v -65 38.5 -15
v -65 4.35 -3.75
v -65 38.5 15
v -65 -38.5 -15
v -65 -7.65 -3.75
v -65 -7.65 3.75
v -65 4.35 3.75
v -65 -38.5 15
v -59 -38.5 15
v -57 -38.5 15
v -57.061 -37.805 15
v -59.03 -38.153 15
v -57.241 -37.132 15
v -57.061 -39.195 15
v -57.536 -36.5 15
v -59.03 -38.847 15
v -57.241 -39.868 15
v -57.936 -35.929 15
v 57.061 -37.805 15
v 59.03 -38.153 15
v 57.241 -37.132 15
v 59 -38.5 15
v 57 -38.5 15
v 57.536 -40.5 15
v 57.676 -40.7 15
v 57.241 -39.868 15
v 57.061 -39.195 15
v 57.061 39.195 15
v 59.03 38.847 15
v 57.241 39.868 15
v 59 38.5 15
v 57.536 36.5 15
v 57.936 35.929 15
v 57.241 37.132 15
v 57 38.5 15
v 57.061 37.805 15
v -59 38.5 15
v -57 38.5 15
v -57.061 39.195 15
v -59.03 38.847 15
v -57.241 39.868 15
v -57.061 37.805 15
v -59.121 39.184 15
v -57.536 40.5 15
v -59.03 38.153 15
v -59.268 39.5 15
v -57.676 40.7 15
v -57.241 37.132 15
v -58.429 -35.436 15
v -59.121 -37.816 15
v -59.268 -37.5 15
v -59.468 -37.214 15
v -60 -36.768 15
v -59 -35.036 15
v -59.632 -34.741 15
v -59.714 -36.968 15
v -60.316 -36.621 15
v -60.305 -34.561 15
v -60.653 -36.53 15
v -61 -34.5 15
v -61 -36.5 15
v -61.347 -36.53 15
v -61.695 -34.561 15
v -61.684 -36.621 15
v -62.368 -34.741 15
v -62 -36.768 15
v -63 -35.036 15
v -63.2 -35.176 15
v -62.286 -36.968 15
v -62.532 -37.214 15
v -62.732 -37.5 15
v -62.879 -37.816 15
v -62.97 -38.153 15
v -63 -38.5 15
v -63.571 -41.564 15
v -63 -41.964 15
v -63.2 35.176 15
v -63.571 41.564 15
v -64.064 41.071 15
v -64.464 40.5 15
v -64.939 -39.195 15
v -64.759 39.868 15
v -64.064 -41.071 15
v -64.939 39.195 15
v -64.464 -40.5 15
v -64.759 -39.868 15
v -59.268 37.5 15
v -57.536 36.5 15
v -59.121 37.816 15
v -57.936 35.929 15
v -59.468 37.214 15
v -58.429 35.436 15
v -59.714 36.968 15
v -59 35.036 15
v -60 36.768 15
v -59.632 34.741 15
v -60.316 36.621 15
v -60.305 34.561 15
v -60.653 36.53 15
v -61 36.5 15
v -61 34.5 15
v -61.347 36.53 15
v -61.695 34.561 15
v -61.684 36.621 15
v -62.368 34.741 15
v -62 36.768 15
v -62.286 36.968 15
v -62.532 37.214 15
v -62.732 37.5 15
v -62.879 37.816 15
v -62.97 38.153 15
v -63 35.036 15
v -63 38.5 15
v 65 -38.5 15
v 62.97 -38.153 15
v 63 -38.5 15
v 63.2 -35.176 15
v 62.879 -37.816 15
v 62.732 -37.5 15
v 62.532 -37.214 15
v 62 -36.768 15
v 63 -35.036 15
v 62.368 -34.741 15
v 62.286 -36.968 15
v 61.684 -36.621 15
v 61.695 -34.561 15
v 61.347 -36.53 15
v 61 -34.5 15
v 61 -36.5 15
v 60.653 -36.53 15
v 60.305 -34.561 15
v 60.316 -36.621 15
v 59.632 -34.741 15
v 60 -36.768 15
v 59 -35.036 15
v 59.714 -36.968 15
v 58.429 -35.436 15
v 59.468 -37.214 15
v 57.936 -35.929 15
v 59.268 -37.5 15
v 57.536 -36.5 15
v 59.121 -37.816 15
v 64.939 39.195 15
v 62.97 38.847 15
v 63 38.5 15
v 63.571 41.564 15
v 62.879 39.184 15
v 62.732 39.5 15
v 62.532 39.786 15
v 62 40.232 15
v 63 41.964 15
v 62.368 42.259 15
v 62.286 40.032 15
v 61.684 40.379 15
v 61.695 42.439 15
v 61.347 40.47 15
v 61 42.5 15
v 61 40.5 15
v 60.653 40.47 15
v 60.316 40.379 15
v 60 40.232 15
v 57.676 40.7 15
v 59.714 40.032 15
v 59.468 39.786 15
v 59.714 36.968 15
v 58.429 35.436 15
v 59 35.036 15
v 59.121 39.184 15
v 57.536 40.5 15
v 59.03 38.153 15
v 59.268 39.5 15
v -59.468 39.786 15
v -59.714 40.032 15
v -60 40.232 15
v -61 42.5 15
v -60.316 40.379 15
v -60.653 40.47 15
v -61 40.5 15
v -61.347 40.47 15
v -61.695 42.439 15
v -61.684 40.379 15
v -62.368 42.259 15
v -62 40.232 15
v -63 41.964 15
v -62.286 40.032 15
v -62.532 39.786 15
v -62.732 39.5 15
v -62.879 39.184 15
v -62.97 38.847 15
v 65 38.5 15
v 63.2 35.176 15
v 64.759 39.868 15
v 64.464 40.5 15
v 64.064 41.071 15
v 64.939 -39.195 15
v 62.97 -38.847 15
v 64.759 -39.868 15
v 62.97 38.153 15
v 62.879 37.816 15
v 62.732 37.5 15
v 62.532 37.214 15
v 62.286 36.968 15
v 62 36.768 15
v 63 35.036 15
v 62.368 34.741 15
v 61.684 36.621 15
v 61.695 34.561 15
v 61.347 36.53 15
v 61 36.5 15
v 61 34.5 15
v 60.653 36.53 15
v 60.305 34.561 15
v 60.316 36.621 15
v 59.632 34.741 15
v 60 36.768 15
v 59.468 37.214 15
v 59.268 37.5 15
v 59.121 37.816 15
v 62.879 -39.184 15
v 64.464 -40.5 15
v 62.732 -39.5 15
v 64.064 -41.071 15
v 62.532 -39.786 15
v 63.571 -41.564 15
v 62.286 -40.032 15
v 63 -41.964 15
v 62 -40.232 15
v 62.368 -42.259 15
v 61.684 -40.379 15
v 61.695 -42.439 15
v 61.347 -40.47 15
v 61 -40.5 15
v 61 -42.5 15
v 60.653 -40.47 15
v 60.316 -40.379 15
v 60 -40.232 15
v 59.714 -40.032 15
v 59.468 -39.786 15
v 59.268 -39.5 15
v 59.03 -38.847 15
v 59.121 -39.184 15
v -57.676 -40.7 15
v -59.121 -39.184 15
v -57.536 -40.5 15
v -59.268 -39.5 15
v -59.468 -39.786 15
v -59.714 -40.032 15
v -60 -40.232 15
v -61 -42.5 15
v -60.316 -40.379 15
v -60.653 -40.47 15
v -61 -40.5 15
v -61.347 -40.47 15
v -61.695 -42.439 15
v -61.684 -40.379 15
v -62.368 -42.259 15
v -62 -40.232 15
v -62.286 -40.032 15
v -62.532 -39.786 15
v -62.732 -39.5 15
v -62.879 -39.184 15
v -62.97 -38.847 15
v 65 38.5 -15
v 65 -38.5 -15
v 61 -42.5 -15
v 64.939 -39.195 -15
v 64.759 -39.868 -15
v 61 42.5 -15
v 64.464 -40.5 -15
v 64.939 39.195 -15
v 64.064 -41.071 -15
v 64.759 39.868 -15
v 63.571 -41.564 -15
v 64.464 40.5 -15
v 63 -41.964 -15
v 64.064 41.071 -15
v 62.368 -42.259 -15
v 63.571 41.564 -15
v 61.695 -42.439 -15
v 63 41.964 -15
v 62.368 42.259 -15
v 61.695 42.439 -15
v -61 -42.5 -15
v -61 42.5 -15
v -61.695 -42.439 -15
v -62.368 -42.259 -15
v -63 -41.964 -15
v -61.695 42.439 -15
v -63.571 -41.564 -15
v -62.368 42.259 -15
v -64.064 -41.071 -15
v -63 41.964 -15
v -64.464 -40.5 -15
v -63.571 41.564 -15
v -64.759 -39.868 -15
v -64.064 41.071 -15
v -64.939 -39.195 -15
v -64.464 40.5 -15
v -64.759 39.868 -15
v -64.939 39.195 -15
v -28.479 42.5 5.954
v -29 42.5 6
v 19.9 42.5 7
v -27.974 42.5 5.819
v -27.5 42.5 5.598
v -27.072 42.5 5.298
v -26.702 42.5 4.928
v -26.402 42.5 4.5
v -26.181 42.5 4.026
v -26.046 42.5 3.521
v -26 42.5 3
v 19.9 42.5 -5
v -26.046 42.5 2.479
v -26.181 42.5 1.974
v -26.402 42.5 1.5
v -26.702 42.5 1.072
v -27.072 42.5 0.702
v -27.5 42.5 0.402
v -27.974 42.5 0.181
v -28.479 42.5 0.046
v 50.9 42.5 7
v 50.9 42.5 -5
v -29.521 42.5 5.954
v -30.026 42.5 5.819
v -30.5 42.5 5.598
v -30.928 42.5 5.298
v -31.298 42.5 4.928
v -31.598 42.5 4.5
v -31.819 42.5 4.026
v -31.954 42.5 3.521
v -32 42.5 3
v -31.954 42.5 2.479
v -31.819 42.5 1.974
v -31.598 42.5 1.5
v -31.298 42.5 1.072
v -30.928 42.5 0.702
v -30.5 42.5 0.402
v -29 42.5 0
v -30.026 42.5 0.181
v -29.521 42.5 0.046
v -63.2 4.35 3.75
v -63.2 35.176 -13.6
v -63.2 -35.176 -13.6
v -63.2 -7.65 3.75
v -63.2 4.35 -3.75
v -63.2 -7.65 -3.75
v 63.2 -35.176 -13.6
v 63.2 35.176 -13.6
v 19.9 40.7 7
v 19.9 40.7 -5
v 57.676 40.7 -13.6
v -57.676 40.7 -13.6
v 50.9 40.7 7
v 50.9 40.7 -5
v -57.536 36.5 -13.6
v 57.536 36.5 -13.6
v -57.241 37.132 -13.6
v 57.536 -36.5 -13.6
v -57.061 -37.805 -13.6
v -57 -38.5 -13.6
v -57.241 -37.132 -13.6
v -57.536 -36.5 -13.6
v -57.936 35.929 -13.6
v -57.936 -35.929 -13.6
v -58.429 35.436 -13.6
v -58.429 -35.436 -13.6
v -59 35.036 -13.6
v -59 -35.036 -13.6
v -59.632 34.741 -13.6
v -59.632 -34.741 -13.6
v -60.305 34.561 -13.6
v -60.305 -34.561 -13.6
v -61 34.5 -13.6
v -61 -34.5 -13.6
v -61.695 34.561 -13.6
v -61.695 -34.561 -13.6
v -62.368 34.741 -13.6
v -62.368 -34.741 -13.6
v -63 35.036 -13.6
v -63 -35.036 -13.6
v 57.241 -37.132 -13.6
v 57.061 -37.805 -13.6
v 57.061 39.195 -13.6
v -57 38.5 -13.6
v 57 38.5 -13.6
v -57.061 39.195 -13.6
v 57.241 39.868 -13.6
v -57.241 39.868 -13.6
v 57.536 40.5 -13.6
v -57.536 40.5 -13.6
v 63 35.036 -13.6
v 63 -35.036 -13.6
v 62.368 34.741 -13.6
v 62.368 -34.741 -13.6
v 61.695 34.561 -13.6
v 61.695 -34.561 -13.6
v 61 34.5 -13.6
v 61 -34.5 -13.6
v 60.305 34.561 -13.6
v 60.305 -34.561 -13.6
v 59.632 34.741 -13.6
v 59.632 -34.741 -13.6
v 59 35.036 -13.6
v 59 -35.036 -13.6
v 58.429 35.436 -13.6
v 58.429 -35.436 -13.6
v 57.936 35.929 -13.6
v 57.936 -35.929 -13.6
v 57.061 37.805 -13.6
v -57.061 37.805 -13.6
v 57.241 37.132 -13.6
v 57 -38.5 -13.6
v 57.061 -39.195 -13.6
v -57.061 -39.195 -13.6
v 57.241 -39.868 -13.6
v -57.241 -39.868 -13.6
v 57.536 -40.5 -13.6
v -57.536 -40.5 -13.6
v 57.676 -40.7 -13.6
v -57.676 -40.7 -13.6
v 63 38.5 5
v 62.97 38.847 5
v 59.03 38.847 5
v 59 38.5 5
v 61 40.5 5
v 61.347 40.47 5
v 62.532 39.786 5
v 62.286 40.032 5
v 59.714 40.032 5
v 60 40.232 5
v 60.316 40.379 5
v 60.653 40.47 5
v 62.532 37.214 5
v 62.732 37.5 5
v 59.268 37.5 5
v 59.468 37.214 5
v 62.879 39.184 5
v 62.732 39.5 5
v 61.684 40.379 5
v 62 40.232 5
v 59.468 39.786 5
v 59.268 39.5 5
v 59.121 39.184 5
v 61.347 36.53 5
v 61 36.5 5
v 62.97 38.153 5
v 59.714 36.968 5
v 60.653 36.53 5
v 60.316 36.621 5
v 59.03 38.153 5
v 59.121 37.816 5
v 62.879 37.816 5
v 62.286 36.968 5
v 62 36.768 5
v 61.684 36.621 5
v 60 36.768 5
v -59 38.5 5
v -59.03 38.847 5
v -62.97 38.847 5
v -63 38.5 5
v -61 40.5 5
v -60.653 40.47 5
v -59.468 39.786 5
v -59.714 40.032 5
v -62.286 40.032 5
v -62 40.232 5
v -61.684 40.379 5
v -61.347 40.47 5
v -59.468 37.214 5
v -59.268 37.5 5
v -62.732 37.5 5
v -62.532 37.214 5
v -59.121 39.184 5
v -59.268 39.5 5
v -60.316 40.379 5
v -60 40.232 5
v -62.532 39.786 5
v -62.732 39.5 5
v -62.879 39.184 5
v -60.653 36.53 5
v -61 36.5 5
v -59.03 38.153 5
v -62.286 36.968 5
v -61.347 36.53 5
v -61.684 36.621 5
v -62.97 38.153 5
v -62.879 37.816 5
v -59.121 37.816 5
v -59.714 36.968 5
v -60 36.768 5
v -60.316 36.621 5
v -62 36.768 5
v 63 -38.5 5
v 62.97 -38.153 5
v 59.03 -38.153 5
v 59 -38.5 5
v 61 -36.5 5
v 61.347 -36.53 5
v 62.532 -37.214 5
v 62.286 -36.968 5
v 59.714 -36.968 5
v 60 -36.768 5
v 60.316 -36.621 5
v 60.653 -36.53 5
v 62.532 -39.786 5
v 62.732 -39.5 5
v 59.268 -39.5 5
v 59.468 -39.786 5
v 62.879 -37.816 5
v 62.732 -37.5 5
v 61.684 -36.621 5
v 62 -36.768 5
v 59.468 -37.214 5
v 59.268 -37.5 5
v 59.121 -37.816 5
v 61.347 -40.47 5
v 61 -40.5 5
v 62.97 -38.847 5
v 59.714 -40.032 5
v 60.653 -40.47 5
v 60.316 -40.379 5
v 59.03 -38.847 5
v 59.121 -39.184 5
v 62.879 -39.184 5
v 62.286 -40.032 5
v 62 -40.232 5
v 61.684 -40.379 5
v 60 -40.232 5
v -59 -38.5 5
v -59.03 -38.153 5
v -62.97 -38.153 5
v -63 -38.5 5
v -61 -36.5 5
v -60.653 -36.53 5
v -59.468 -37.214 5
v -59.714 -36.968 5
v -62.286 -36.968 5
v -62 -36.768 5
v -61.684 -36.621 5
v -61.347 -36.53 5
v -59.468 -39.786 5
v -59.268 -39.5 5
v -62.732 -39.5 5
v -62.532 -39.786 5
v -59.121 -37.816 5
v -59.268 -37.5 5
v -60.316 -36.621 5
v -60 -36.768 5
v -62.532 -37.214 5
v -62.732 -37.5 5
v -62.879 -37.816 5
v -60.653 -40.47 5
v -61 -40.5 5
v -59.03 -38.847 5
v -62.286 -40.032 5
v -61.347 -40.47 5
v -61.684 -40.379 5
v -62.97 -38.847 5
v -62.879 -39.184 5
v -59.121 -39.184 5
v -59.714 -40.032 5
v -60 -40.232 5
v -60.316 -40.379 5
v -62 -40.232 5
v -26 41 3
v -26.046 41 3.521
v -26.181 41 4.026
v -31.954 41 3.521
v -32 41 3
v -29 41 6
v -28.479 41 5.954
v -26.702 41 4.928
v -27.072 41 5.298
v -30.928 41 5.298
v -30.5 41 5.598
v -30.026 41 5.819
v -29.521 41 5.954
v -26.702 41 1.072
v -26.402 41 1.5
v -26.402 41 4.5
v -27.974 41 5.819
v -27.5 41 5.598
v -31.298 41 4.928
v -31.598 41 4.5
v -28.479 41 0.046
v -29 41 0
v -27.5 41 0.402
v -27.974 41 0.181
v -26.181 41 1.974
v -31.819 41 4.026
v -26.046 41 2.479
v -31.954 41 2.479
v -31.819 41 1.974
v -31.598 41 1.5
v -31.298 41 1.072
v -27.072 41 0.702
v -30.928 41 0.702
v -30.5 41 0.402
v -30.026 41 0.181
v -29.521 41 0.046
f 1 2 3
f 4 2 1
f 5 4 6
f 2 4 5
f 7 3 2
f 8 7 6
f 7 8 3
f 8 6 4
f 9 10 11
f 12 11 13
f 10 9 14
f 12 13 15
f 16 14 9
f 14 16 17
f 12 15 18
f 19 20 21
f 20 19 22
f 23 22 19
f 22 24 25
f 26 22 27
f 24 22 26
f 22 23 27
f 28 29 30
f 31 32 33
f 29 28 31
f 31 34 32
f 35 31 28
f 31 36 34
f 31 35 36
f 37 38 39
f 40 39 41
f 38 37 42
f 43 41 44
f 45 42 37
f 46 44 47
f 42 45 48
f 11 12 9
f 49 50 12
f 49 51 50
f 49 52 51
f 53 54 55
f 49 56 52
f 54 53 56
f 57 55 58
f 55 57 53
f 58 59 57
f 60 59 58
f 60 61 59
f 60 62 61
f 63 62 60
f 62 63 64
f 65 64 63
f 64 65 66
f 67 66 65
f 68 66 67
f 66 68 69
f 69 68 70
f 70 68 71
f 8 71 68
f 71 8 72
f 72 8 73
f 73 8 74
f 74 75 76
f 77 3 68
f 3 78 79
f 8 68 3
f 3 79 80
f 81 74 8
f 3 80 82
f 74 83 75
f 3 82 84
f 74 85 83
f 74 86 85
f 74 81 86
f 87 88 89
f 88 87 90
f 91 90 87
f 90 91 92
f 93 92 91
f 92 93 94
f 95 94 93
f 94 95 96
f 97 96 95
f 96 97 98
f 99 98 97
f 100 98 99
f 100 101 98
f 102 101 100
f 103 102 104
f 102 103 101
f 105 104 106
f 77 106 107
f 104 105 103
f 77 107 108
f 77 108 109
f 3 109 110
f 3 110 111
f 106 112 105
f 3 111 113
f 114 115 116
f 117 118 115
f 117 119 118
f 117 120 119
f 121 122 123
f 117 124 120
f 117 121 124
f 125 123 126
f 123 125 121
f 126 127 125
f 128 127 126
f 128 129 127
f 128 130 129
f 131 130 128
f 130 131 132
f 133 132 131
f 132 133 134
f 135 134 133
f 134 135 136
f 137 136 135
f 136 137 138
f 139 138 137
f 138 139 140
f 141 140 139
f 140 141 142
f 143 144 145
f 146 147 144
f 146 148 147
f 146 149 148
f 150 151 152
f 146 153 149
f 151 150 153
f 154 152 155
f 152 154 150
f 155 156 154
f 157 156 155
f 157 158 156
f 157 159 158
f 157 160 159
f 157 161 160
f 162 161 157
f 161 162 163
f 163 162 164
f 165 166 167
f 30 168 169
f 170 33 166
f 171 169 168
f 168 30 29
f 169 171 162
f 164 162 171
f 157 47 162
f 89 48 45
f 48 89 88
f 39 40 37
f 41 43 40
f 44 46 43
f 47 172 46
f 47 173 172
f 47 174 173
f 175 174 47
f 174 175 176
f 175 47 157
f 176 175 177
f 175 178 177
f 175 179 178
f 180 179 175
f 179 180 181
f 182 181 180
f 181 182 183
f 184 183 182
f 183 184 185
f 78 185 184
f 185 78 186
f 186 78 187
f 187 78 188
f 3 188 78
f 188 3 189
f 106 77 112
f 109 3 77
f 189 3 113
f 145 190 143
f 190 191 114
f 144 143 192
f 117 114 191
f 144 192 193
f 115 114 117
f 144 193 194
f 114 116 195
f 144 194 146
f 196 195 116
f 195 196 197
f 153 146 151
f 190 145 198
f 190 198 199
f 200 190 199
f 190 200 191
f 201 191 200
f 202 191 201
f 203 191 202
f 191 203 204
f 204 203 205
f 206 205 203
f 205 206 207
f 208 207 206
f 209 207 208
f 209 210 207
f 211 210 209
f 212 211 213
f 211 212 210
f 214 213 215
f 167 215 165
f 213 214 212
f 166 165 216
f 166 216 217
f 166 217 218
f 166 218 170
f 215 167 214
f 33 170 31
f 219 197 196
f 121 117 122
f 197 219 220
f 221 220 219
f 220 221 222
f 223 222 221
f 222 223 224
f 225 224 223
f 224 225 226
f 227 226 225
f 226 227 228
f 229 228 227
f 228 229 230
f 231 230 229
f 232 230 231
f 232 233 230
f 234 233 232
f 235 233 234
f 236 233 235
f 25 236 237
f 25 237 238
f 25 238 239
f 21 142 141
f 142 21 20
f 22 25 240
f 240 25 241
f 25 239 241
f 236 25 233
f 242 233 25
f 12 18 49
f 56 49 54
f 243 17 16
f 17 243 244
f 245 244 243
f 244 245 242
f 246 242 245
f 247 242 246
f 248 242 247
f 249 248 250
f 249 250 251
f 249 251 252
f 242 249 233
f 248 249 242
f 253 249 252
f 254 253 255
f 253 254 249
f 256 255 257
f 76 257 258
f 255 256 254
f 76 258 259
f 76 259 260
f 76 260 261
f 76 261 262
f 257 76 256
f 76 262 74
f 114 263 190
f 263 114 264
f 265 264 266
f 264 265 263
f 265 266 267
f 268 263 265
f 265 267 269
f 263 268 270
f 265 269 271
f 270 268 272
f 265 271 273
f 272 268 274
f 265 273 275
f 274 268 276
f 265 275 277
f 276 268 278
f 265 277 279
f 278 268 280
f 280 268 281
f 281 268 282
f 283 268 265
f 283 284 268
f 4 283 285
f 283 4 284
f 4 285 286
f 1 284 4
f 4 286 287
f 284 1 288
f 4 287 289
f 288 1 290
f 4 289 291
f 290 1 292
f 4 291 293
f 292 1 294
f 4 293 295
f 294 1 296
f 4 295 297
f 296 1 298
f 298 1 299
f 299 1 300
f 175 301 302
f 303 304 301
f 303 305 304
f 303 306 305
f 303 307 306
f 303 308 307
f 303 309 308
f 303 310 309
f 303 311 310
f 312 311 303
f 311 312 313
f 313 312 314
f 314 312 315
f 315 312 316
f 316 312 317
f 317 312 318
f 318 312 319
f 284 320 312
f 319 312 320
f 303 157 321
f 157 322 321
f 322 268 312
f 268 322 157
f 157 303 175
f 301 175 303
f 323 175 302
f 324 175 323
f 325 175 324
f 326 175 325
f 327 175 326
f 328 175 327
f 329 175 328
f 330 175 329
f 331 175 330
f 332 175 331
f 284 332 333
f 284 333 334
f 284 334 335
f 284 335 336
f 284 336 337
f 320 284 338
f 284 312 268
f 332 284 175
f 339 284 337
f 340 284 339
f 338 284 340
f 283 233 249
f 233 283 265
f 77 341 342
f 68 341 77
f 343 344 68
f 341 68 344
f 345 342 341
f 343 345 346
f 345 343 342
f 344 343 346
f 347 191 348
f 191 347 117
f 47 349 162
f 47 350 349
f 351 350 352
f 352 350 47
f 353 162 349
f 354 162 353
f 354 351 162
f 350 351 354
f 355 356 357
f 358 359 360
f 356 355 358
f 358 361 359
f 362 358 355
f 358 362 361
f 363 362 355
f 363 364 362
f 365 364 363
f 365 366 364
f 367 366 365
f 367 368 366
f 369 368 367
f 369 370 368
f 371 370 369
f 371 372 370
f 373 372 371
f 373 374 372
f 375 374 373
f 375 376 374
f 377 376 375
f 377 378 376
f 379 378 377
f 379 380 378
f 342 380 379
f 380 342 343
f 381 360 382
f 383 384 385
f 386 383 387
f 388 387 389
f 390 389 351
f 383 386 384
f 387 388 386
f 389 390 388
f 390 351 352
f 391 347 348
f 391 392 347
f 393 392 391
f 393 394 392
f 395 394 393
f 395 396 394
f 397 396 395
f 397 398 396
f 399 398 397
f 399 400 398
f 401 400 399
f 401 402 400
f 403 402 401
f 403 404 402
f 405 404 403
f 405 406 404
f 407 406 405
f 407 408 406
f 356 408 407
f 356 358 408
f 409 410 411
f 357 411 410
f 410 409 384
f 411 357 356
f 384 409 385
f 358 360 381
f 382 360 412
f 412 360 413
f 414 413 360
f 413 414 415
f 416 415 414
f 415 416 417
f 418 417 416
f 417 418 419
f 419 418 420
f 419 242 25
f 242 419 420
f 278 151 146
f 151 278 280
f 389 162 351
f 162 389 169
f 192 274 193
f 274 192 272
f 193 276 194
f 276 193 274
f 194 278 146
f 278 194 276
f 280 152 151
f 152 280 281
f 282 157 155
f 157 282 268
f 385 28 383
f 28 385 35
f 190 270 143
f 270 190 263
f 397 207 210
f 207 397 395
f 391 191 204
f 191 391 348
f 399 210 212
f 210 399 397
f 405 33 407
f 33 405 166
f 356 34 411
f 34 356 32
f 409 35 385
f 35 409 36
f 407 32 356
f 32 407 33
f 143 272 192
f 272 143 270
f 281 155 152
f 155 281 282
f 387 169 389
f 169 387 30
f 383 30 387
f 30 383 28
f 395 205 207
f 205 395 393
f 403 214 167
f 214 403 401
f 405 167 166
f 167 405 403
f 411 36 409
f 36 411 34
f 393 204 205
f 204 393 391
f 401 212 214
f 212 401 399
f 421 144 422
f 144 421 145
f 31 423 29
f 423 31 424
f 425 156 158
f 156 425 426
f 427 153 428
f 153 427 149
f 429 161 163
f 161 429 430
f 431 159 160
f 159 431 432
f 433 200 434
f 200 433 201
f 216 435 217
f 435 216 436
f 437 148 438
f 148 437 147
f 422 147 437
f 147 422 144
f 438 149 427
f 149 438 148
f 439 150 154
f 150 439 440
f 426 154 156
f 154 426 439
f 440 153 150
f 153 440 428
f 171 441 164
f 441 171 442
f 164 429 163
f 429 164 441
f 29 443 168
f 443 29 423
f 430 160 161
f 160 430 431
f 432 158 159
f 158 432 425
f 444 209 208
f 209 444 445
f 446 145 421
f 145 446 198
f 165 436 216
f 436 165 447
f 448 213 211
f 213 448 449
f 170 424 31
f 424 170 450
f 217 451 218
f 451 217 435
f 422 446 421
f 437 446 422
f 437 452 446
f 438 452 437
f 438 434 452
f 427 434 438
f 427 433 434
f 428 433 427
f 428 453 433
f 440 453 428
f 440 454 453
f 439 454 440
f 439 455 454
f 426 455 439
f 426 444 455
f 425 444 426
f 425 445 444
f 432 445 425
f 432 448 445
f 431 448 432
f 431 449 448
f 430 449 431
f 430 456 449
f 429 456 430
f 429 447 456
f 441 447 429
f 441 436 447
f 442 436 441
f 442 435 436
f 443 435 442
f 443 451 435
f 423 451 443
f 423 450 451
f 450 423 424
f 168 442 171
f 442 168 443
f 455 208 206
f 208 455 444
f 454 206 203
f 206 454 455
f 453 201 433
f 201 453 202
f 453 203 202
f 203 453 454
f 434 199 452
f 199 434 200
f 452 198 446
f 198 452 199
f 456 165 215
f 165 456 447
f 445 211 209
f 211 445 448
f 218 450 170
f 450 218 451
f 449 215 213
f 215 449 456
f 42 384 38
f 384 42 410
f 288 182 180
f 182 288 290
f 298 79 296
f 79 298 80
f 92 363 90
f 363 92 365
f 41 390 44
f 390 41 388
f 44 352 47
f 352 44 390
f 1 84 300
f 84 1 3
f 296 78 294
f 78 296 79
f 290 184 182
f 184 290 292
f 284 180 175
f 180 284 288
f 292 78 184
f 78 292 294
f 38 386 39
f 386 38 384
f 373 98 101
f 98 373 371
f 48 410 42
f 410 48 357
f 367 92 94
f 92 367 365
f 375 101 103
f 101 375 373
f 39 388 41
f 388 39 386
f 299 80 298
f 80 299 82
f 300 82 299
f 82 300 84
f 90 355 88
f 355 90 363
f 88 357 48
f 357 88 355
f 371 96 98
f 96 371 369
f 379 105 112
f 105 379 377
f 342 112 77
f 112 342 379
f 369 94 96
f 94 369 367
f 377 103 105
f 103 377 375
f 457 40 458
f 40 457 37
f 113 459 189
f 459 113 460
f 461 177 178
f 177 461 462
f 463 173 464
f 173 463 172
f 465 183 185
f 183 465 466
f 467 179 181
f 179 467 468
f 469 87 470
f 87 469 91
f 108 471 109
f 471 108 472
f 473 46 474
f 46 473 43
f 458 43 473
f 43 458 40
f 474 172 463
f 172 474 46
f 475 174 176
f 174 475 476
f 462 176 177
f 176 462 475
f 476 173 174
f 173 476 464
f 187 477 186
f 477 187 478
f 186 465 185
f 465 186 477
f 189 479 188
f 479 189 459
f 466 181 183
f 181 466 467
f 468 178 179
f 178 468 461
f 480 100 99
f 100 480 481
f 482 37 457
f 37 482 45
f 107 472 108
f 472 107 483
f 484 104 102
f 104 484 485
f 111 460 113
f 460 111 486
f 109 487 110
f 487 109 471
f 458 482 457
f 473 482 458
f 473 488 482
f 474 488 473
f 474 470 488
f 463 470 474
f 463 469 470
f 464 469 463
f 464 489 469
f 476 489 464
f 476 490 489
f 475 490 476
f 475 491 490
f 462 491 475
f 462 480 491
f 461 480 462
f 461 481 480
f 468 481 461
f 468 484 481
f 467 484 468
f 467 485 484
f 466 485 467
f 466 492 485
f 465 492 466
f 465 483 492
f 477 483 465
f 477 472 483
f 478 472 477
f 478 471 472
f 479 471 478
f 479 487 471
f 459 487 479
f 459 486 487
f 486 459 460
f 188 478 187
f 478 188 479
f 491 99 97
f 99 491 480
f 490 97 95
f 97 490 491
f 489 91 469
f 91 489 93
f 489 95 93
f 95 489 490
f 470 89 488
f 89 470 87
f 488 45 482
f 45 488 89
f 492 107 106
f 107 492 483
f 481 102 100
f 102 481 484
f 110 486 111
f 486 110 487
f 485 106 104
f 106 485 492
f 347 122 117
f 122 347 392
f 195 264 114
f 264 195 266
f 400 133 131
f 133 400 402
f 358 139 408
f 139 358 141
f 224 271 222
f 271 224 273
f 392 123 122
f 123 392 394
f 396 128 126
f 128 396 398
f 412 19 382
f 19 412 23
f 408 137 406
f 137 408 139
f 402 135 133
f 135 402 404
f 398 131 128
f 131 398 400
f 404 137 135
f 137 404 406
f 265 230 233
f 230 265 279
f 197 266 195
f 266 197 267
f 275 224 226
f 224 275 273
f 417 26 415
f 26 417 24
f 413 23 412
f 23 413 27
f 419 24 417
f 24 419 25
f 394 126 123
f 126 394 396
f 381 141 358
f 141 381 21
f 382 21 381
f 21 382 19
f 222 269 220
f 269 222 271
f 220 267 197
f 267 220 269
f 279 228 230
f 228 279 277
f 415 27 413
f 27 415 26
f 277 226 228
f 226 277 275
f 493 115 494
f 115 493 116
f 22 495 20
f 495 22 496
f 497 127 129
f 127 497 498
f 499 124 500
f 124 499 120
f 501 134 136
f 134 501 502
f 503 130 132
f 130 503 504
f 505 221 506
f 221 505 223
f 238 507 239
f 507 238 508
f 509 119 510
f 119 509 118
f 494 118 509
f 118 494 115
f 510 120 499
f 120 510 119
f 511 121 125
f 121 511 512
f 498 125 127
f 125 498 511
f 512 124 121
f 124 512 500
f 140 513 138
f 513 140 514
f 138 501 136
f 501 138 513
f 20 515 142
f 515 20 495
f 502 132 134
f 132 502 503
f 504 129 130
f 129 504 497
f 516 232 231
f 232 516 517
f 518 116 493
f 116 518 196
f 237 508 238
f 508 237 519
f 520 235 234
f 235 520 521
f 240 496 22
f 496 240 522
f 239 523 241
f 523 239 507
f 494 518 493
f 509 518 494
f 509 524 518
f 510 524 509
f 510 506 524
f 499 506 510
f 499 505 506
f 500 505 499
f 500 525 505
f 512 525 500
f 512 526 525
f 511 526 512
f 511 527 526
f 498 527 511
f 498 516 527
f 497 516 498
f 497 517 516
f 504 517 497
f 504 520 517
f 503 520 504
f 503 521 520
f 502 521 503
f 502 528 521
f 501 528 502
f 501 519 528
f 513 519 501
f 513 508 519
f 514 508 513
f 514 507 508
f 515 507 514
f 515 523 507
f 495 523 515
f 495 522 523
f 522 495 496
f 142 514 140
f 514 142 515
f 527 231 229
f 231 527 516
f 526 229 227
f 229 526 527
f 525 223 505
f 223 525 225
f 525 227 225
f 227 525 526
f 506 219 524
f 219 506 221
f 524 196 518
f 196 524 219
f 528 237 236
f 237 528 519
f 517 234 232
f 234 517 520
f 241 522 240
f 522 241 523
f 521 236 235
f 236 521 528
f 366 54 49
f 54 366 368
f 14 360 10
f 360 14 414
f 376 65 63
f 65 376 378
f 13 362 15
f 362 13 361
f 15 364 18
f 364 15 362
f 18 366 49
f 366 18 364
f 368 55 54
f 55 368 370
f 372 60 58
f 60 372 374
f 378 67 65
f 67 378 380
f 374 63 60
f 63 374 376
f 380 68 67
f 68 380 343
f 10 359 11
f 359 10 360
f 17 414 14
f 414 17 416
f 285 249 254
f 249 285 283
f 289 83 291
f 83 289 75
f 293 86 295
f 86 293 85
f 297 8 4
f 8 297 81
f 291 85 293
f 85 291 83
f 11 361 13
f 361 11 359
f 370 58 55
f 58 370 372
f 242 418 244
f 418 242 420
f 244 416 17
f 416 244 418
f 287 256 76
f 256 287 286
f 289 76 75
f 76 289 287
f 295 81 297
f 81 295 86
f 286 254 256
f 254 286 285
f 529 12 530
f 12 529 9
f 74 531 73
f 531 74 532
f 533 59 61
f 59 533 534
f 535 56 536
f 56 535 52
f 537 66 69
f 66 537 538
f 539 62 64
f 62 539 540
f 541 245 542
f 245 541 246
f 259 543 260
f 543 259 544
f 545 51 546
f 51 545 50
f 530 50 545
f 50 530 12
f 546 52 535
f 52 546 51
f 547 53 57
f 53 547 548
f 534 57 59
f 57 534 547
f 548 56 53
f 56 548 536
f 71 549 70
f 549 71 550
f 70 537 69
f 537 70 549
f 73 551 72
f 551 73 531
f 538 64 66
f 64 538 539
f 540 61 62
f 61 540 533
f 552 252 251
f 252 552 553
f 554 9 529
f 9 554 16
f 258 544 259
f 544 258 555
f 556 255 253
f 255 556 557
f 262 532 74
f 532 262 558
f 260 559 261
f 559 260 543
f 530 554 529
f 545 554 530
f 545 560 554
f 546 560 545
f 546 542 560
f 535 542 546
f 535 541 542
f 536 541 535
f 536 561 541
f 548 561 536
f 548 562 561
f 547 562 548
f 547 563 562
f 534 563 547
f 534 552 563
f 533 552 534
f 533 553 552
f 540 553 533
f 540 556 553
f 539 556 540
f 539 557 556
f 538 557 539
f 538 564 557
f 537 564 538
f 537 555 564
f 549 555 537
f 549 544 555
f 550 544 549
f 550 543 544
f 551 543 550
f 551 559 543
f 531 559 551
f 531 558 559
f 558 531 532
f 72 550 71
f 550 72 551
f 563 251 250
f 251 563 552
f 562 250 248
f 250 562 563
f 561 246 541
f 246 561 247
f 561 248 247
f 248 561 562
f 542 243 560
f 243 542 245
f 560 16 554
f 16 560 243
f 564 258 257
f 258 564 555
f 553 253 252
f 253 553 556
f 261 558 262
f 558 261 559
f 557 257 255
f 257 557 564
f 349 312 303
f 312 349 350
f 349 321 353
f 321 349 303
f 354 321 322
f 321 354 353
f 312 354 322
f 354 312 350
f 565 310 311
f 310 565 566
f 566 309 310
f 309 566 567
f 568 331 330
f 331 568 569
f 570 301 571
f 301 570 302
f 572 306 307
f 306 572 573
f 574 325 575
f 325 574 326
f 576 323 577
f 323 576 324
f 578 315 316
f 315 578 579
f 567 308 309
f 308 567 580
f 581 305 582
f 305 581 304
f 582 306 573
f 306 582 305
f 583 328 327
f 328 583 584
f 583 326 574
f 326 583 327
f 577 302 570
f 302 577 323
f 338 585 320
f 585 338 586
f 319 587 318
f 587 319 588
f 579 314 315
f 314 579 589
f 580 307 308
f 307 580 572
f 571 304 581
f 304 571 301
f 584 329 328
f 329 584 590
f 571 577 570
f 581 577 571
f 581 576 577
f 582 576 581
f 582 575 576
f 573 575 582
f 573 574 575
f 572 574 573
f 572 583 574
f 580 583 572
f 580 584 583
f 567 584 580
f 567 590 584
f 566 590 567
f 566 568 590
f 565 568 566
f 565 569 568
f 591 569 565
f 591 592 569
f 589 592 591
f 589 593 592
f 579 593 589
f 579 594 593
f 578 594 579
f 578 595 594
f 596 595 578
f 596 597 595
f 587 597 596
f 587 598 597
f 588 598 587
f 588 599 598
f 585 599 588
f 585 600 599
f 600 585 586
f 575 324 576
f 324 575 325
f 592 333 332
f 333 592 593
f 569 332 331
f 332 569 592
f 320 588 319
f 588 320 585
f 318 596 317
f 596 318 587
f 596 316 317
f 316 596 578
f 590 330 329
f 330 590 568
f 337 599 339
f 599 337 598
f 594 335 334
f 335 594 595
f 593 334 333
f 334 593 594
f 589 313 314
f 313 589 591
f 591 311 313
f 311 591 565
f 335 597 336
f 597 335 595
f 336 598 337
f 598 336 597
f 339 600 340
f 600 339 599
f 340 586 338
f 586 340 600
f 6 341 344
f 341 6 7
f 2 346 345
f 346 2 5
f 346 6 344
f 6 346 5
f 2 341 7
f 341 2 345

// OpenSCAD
// Definition size of housing
// **************************

       // Those settings have to be identical to the cover !!!
width_x      = 130;          // Width of the housing (outer dimension) 
debth_y      = 85;           // Debth of the housing (outer dimension)
wall         = 1.8;          // Wall thickness of the box
cornerradius = 4.0;          // Radius of the corners
                             //   This value also defines the posts for stability and
                             //   for the press-in nuts!

       // Those settings are more or less independent from the cover
height_z     = 30;           // Heigth of the lower part. Total height is this value plus
                             //   the height of the cover
plate        = 1.4;          // Thickness of the bottom plain

       //Definition size of press-in nuts
nutdiameter  = 4.0;          // Hole diameter for thermal press-in nut
nutlength    = 10;          // Depth of the nut hole


//Definition of circle angular resolution
resol        = 36;



difference () {

// Construction of housing
   union () {
   // Definition of main body
      difference () {
         union () {
            cube ( [width_x, debth_y - (2* cornerradius), height_z], center = true );
            cube ( [width_x - (2* cornerradius), debth_y, height_z], center = true );
         };
         translate ( [0,0, plate / 2] ){
            cube ( [width_x - (2* wall), debth_y- (2* wall), height_z - plate], center = true ); 
         };
      };

      // Construction of four corner cylinders including nut holes
      // 1st quadrant
      translate ( [(width_x / 2) - cornerradius, (debth_y / 2) - cornerradius, 0 ] ) {
         difference () {
            cylinder (h=height_z, r=cornerradius, center = true, $fn = resol);
            translate ( [ 0,0,(height_z / 2)-(nutlength / 2) ] ) {
               cylinder (h = nutlength, r = nutdiameter / 2, center = true, $fn = resol);
            };
         };
      };

      // 2nd quadrant
      translate ( [-(width_x / 2) + cornerradius, (debth_y / 2) - cornerradius, 0] ) {
         difference () {
            cylinder (h=height_z, r=cornerradius, center = true, $fn = resol);
            translate ( [ 0,0,(height_z / 2)-(nutlength / 2) ] ) {
               cylinder (h = nutlength, r = nutdiameter / 2, center = true, $fn = resol);
            };
         };
      };

      // 4th quadrant
      translate ( [(width_x / 2) - cornerradius, -(debth_y / 2) + cornerradius, 0] ) {
         difference () {
            cylinder (h=height_z, r=cornerradius, center = true, $fn = resol);
            translate ( [ 0,0,(height_z / 2)-(nutlength / 2) ] ) {
               cylinder (h = nutlength, r = nutdiameter / 2, center = true, $fn = resol);
            };
         };
      };

      // 3rd quadrant
      translate ( [-(width_x / 2) + cornerradius, -(debth_y / 2) + cornerradius, 0] ) {
         difference () {
            cylinder (h=height_z, r=cornerradius, center = true, $fn = resol);
            translate ( [ 0,0,(height_z / 2)-(nutlength / 2) ] ) {
               cylinder (h = nutlength, r = nutdiameter / 2, center = true, $fn = resol);
            };
         };
      }; 
   };

// Space for the construction of holes, breakouts, ... 
    translate ([19.9+31/2,40,1]) cube ([31,8,12], center=true); //rj45s
   translate ([-29,45,3]) rotate ([90,0,0]) cylinder (h=8, r=6/2, center = true, $fn = resol); //jack

    translate ([-65,-1.65,0]) cube ([8,12,7.5], center=true); //usb


};
